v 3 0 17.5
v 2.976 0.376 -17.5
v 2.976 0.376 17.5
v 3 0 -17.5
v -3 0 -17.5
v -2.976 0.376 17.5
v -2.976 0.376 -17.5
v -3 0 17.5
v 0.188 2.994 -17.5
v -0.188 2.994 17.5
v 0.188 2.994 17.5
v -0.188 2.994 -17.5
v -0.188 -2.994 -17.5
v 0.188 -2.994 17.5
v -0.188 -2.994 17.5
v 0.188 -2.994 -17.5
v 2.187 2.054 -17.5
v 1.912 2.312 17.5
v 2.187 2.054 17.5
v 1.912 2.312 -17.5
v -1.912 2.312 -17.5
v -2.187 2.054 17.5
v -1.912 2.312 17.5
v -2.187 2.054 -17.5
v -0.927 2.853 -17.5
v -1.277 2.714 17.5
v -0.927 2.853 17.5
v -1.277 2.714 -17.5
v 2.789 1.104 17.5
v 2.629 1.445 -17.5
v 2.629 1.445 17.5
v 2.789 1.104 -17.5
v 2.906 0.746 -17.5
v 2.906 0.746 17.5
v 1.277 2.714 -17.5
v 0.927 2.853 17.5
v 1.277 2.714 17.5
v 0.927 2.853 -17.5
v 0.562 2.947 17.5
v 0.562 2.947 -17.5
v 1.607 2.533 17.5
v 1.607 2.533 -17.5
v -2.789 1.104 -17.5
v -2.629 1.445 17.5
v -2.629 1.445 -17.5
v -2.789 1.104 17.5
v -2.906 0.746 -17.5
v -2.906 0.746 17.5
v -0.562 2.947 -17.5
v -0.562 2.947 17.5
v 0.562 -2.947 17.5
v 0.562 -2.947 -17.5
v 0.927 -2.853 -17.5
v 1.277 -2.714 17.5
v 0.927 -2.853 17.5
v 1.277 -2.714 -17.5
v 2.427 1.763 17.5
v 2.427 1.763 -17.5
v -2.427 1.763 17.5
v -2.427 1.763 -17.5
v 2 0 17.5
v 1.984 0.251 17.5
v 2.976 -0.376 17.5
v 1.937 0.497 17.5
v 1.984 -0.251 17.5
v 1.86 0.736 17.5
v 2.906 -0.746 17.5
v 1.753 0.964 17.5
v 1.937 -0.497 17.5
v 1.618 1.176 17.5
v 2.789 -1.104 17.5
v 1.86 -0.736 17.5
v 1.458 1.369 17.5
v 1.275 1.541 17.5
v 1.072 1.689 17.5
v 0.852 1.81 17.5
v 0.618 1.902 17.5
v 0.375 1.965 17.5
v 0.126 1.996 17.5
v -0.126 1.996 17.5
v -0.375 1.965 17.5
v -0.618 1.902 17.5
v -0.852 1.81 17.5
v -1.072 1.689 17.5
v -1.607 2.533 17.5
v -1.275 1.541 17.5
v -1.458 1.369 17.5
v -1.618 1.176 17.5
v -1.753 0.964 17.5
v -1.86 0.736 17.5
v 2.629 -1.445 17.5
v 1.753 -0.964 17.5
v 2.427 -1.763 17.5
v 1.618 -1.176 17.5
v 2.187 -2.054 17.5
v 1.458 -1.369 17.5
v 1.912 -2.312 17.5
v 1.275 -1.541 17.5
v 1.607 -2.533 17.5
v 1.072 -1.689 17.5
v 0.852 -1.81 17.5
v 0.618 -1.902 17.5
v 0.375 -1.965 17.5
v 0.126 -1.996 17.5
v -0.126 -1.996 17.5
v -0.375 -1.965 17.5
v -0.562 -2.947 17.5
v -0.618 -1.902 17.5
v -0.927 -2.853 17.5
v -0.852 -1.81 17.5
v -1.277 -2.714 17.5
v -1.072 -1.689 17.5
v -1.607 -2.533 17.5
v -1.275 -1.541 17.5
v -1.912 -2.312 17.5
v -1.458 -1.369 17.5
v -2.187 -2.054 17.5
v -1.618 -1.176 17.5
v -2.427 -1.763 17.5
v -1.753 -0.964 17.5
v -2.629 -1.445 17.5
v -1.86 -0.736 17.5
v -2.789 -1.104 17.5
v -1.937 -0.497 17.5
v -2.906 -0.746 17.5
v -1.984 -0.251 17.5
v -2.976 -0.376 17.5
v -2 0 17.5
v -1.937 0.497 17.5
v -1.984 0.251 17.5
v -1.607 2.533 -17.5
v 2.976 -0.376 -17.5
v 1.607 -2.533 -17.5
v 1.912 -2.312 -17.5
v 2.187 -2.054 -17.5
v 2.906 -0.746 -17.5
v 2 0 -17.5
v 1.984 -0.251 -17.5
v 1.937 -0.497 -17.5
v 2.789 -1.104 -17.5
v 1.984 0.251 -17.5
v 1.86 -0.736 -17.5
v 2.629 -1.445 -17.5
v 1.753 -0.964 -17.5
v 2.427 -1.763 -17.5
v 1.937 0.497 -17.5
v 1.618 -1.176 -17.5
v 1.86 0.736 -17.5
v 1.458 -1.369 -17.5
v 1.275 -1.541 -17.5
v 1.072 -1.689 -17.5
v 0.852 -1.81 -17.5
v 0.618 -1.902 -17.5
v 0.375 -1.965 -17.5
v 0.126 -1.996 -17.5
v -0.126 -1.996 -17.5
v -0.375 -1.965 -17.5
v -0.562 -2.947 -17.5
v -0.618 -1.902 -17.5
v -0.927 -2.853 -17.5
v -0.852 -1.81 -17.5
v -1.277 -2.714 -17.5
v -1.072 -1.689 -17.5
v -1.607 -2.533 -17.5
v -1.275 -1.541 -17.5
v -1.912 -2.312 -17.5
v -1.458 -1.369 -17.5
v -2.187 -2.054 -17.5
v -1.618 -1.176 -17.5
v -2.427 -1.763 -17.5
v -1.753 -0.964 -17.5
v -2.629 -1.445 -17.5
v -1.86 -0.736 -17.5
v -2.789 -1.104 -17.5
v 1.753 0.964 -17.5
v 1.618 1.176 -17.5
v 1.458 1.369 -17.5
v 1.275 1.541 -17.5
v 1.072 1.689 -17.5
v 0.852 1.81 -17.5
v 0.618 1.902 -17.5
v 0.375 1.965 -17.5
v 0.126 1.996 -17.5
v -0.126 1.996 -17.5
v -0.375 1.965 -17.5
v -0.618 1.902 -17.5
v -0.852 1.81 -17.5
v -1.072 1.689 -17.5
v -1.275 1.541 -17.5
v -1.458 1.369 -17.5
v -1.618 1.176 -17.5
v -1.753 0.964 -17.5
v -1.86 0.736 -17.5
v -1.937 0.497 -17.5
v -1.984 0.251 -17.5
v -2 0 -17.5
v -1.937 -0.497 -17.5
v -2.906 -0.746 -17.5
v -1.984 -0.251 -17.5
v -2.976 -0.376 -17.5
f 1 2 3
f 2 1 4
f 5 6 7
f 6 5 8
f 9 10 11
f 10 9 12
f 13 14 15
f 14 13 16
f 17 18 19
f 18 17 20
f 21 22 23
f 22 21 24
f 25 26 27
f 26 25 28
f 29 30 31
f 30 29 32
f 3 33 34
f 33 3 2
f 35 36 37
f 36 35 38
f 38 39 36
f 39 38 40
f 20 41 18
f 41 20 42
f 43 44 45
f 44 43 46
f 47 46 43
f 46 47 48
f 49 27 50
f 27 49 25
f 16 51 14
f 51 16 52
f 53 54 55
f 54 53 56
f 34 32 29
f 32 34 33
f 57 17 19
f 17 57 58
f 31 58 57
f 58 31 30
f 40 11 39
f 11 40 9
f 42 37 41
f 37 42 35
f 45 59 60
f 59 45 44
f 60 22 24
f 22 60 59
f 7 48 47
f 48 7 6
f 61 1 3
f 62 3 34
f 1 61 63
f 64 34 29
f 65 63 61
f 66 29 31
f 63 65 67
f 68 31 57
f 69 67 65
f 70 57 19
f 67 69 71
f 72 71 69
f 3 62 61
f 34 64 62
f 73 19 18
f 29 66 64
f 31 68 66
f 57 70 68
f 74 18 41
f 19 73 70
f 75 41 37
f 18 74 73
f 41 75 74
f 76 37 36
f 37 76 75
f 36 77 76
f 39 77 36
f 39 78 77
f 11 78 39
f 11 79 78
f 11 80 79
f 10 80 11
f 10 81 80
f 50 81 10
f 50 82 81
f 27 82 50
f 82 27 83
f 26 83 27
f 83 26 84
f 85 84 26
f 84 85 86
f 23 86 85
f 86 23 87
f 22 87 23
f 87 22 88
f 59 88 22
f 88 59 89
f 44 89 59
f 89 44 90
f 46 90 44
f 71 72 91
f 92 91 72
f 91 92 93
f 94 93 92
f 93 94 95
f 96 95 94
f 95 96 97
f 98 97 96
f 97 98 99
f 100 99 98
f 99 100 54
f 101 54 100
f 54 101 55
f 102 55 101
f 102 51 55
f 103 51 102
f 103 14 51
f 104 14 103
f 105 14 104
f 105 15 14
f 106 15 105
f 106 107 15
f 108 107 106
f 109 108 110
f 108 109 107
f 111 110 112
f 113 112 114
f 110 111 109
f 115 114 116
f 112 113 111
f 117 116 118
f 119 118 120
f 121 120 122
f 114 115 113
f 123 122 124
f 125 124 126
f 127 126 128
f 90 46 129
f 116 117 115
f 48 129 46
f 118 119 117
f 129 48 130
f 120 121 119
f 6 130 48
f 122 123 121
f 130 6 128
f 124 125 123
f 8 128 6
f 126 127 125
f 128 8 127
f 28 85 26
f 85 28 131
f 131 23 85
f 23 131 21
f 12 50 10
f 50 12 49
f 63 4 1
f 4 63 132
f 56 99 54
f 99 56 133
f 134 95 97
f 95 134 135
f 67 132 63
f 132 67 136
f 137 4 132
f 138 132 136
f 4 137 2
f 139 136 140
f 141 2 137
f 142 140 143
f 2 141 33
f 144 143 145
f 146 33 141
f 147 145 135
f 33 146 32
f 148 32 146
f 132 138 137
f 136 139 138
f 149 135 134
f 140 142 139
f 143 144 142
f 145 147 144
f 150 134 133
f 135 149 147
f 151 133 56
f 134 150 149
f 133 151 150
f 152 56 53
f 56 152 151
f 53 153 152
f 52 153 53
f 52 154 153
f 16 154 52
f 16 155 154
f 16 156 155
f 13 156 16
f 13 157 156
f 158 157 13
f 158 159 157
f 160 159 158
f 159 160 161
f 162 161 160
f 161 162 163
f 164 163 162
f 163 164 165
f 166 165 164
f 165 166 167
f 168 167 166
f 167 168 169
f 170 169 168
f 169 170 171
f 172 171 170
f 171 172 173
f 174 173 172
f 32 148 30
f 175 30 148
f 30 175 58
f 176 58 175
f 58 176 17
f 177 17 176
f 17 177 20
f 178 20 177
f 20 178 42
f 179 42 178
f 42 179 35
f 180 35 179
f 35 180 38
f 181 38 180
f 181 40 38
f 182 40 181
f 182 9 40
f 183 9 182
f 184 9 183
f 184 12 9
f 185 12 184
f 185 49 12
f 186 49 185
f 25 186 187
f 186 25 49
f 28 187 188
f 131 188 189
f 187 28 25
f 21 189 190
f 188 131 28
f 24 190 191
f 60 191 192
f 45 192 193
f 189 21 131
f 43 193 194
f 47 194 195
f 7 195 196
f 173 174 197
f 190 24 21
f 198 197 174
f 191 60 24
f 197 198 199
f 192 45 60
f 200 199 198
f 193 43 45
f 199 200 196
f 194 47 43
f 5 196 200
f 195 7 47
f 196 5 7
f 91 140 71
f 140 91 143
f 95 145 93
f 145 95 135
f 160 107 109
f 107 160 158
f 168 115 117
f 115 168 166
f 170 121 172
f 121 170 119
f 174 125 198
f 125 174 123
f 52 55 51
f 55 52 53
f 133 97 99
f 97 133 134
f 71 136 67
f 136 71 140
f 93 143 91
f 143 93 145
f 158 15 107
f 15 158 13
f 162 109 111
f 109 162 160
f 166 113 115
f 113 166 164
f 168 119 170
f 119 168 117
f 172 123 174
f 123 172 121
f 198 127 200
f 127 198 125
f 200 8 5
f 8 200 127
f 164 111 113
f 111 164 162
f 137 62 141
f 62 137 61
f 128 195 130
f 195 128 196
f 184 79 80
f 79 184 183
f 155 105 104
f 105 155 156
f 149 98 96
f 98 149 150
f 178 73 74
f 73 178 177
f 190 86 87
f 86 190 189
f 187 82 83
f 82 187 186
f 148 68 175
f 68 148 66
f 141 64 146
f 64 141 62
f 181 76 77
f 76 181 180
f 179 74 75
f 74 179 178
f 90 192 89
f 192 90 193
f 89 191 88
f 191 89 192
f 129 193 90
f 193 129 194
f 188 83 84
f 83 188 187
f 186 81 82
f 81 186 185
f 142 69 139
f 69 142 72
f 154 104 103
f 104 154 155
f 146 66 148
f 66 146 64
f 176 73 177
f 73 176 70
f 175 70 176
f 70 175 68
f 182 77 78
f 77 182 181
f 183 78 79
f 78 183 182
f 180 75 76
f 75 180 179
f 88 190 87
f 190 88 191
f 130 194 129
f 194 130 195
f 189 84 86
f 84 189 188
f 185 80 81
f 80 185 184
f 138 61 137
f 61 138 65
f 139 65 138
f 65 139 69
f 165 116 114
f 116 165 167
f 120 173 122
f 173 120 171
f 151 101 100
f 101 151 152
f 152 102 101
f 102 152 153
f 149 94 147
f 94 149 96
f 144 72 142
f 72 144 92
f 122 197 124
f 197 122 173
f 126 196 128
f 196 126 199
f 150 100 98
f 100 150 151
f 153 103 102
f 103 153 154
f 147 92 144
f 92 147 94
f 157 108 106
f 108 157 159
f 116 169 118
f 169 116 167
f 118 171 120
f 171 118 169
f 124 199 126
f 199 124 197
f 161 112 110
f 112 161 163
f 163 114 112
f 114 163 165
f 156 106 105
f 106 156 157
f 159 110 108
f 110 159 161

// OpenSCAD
$fn = 50;


difference() {
	union() {
		translate(v = [0, 0, -17.5000000000]) {
			cylinder(h = 35, r = 3.0000000000);
		}
	}
	union() {
		translate(v = [0, 0, -100.0000000000]) {
			cylinder(h = 200, r = 2);
		}
	}
}
